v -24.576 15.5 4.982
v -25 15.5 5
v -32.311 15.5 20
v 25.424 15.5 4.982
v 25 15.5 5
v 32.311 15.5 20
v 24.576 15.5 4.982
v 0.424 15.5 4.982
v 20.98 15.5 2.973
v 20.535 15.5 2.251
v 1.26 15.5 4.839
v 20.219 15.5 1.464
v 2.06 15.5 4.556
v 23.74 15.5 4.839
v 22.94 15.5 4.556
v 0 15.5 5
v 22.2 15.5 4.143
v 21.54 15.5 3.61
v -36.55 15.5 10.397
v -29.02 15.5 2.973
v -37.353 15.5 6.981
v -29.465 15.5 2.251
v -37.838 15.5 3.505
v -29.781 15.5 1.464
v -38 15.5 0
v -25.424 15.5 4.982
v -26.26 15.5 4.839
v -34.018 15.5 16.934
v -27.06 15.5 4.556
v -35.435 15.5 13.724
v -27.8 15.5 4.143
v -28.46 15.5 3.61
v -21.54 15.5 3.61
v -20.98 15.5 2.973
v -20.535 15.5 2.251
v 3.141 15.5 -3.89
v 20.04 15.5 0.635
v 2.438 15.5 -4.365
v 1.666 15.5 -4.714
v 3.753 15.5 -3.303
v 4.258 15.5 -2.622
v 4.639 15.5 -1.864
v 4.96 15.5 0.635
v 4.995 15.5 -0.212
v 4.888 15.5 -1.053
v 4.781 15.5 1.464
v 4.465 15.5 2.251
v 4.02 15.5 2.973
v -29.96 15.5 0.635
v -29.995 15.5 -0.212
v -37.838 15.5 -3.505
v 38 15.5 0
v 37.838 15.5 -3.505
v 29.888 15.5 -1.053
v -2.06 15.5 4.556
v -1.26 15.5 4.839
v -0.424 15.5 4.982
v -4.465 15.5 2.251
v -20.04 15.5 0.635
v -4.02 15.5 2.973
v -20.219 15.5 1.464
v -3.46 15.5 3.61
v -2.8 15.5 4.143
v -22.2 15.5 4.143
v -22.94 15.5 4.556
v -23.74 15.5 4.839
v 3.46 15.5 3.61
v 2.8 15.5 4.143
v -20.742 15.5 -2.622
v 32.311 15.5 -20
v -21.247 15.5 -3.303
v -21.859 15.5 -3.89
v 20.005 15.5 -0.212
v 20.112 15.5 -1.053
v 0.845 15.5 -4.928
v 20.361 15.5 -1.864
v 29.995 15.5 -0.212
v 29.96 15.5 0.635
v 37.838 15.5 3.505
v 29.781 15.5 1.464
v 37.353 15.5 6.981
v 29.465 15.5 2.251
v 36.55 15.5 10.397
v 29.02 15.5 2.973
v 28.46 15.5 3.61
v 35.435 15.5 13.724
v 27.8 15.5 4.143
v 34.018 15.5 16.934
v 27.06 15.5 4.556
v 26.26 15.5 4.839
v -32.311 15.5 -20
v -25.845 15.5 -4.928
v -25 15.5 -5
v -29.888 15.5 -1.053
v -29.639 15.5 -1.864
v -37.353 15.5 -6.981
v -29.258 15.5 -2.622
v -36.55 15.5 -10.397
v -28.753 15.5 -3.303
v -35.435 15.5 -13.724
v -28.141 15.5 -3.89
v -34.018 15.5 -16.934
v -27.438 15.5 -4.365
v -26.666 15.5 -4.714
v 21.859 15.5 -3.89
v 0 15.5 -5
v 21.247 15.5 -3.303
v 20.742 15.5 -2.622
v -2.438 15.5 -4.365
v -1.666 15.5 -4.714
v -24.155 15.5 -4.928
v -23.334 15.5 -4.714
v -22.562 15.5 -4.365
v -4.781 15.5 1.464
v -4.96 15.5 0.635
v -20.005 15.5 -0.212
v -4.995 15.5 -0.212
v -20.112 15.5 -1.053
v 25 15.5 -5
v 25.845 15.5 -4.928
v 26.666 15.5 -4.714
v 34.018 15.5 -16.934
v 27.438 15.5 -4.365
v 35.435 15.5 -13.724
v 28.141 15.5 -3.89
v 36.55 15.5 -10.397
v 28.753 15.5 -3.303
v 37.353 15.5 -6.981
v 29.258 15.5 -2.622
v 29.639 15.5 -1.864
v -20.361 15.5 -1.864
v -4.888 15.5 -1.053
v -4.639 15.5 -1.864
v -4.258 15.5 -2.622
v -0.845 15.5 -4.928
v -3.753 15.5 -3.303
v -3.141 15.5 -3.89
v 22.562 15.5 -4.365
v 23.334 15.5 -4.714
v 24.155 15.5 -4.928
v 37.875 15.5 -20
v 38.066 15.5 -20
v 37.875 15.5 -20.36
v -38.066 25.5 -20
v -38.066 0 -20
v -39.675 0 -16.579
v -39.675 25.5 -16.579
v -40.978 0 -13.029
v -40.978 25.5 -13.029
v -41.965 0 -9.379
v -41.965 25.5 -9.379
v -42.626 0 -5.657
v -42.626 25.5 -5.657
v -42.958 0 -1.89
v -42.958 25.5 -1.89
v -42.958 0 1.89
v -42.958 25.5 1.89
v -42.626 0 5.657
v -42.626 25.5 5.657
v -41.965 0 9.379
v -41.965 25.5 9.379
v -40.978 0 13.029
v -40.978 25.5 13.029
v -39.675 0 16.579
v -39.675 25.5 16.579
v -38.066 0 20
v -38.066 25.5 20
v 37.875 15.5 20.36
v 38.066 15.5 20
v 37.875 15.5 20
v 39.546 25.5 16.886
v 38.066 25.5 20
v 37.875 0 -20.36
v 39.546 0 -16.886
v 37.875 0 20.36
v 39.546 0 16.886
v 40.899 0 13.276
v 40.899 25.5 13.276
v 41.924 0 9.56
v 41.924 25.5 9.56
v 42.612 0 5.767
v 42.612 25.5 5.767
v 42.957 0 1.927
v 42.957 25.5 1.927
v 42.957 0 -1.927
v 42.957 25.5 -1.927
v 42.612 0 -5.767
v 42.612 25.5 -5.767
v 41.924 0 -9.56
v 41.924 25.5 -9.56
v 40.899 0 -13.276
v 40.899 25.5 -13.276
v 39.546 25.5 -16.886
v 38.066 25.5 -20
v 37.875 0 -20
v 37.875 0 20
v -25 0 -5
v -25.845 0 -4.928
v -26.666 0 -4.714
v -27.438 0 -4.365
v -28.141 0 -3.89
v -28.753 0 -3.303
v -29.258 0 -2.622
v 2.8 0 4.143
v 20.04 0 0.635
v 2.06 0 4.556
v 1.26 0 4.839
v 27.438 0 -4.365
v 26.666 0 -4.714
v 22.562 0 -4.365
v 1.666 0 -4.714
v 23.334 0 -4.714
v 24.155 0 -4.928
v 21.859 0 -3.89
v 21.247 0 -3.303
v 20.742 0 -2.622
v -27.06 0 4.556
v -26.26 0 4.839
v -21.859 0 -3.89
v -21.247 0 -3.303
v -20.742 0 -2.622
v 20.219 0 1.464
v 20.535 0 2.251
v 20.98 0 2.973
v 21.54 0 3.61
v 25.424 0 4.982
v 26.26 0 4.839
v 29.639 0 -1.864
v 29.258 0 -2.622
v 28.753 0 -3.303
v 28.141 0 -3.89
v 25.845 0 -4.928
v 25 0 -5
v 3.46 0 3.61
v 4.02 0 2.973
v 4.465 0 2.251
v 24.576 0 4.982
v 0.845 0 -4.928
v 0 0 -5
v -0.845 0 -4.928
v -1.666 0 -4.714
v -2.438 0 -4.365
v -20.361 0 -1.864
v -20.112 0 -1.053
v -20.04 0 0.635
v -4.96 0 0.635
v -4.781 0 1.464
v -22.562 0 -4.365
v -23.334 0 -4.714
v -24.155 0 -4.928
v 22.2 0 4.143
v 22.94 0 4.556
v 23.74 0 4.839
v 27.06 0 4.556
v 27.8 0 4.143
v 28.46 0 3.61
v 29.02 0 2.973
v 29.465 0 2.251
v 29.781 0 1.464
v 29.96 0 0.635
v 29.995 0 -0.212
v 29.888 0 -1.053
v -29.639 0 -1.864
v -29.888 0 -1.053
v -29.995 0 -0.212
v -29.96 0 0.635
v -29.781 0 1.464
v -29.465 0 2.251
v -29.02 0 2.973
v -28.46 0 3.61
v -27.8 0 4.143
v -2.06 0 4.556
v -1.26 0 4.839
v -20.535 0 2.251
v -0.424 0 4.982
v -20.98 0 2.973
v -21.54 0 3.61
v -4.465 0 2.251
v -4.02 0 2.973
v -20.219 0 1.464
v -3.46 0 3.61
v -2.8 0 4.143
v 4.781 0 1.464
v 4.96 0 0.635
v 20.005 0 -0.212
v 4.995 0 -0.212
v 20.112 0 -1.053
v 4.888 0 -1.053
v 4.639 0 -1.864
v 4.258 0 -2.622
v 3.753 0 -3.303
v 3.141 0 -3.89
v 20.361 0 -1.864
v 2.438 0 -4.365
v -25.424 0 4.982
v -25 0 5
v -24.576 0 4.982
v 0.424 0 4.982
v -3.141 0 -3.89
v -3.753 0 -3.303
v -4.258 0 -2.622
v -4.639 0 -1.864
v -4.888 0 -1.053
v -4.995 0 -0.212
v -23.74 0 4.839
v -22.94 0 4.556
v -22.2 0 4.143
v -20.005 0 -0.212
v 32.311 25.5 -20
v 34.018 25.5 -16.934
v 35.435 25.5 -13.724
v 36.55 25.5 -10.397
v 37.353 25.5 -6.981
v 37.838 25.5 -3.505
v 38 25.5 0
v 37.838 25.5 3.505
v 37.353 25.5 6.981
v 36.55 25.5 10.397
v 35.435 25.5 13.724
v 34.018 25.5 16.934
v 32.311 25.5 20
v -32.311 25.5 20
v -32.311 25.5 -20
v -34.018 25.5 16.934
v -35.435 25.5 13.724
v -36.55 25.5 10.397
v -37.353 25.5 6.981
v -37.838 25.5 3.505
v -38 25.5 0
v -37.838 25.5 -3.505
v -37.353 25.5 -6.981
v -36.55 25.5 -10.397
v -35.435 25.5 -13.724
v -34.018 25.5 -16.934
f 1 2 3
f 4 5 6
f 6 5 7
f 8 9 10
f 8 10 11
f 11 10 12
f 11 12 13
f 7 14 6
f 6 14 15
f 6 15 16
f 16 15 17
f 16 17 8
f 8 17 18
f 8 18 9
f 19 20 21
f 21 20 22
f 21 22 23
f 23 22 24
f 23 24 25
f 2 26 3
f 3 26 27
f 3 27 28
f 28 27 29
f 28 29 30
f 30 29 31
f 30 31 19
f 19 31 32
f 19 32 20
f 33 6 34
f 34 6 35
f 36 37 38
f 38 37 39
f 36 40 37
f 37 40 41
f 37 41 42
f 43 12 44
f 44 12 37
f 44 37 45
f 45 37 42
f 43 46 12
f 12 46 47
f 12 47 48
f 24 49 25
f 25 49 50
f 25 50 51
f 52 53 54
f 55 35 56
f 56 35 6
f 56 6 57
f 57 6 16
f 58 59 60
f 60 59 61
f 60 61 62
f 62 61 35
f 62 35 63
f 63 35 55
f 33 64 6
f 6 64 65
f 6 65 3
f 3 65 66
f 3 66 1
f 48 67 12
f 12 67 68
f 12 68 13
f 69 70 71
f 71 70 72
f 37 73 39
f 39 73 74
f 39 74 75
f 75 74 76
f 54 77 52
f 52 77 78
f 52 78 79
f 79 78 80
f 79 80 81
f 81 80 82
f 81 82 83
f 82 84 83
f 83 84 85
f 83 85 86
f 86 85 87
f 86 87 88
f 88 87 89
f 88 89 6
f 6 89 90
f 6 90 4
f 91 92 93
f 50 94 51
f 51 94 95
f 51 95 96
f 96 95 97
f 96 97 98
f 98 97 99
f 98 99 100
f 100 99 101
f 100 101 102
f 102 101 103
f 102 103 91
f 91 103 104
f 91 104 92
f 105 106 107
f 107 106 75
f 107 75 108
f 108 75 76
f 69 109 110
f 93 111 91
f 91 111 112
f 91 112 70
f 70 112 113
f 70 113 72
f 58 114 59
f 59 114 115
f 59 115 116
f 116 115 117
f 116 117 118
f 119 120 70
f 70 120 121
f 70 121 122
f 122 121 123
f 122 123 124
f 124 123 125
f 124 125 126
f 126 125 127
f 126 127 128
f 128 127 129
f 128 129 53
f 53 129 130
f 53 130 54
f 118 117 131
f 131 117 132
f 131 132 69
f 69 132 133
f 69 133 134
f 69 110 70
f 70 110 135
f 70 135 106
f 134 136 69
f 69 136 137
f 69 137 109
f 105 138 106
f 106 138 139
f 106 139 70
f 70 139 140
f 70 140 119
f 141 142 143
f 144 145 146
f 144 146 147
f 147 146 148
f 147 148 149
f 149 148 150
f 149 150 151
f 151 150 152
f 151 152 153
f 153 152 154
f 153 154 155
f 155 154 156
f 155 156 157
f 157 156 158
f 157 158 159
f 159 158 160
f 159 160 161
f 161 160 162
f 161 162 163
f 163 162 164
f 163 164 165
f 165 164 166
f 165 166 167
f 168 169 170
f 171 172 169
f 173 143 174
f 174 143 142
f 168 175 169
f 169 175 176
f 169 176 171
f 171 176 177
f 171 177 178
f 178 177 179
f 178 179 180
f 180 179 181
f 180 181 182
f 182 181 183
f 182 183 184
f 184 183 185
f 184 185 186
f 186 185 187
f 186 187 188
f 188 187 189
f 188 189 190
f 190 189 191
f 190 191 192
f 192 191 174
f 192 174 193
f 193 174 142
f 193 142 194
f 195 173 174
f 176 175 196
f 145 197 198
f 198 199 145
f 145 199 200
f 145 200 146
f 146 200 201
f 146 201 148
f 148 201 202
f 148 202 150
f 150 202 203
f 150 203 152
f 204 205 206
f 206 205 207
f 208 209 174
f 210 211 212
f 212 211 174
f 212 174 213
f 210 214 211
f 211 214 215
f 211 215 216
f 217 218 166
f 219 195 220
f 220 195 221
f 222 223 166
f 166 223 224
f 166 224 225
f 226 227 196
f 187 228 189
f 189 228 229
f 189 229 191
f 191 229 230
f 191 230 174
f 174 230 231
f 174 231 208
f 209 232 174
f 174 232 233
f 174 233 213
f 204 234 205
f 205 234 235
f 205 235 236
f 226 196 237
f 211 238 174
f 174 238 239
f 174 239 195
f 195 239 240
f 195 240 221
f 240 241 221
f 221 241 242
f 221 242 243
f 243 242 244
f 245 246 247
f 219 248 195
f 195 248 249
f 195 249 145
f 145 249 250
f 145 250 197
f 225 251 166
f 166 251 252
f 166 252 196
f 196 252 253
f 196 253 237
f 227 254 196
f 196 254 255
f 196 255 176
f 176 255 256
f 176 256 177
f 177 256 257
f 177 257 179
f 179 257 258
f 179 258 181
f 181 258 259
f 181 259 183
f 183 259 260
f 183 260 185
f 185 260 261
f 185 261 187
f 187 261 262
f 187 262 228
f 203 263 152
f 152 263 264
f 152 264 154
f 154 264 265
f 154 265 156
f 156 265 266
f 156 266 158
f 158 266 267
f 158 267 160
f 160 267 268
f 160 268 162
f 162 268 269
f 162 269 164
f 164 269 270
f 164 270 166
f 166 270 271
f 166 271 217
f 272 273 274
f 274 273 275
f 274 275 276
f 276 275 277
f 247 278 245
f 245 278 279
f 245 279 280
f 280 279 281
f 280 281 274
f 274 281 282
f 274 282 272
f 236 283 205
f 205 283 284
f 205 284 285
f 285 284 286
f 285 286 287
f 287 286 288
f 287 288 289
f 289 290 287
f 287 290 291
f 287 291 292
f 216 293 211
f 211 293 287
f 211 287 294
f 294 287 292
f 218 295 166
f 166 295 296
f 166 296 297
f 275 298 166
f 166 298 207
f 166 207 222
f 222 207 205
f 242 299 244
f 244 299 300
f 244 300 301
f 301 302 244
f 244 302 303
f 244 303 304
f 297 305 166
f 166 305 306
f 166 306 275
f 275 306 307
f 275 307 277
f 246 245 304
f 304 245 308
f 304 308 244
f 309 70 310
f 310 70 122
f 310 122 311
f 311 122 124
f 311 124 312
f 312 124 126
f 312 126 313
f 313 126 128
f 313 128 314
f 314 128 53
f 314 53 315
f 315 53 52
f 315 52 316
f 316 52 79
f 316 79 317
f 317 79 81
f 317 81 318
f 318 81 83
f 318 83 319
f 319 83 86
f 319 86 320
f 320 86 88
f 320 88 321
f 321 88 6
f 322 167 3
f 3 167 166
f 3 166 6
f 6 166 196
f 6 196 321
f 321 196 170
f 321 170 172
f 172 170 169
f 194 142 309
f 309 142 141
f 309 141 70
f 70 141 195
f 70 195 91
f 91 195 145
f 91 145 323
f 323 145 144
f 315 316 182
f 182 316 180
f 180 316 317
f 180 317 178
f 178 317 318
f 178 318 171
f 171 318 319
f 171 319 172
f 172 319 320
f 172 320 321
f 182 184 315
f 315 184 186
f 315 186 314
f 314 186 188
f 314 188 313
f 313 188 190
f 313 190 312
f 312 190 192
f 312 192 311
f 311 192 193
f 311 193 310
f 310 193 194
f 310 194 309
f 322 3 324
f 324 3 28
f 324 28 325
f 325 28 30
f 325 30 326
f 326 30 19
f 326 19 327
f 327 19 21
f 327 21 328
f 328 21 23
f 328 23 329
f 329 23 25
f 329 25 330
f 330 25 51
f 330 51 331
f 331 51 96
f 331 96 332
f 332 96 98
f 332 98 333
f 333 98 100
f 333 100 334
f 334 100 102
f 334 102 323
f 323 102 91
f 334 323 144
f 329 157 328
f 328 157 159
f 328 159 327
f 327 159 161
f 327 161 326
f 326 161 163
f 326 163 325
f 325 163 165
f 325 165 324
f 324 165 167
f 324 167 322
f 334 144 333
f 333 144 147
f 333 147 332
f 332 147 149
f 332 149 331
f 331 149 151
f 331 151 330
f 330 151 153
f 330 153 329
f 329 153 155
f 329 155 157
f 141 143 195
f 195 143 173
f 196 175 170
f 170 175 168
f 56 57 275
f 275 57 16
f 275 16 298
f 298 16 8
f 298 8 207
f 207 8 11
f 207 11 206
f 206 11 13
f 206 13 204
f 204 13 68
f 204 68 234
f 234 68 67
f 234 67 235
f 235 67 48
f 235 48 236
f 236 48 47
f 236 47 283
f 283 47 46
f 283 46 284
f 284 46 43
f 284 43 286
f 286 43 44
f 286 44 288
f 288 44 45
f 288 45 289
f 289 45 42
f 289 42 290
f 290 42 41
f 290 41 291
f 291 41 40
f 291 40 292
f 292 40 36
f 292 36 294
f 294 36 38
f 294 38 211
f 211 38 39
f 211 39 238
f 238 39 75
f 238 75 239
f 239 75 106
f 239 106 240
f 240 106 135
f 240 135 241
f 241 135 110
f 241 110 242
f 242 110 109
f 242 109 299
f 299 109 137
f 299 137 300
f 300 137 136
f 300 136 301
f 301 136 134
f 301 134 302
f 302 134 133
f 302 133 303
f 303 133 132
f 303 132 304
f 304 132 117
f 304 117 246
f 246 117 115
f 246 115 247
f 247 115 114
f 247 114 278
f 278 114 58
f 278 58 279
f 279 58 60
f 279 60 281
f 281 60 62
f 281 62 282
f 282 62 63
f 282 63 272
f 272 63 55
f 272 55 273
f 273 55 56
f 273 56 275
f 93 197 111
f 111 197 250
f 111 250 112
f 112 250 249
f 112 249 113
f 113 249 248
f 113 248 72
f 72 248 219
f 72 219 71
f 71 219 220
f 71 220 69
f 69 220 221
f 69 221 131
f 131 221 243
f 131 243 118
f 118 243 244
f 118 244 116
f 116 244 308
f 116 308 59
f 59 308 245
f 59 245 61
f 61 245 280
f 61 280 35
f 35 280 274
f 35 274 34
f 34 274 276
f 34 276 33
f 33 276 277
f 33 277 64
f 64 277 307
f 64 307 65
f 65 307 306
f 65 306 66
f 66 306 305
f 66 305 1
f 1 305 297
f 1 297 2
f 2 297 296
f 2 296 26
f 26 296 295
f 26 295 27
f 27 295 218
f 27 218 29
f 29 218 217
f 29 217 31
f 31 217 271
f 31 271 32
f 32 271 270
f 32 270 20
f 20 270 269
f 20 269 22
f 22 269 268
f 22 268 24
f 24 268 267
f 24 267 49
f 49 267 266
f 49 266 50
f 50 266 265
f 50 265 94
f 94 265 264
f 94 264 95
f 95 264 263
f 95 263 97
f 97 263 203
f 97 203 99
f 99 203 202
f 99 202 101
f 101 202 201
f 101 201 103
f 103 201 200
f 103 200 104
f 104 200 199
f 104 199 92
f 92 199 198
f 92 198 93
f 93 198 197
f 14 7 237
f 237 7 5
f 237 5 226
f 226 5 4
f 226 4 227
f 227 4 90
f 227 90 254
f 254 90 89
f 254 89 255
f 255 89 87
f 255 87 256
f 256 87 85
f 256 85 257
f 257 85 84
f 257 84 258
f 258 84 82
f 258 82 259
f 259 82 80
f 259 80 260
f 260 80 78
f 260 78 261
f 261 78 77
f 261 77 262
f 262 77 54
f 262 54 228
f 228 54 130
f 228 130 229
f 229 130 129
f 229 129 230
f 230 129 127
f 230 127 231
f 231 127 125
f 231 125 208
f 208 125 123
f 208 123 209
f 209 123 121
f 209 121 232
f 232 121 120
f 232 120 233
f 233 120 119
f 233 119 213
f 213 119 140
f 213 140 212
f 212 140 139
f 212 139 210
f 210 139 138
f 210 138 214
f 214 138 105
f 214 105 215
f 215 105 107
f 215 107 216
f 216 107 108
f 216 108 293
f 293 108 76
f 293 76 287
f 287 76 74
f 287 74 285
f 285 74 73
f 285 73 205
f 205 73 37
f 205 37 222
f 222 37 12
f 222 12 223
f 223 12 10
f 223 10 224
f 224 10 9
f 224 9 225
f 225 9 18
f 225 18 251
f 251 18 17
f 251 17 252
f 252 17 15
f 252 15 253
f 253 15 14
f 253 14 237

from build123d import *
from build123d.topology import SkipClean

# Parameters (mm, degrees)
SKETCH3_R           = 43
BOSS_EXTRUDE2_DEPTH = 15.5
BOSS_EXTRUDE5_DEPTH = 10
SKETCH9_W           = 75.940248911
SKETCH9_H           = 24.034829181
CUT_EXTRUDE8_DEPTH  = 20
SKETCH10_R          = 5
CUT_EXTRUDE9_DEPTH  = 20
SKETCH11_R          = 5
CUT_EXTRUDE10_DEPTH = 20


with BuildPart() as part:
    # Sketch3 → Boss-Extrude2 (new body)
    with BuildSketch(Plane(origin=(0, 0, 0), x_dir=(1, 0, 0), z_dir=(0, 1, 0))):
        with Locations(Location((0, 0, 0), (0, 0, 270))):
            Circle(SKETCH3_R)
    extrude(amount=BOSS_EXTRUDE2_DEPTH)

    # Sketch4 → Boss-Extrude5 (add)
    with SkipClean():  # the faces are left unmerged after this step: merging them gives an invalid solid
        with BuildSketch(Plane(origin=(0, 15.5, 0), x_dir=(1, 0, 0), z_dir=(0, 1, 0))):
            with BuildLine():
                Line((-38.065732621, 20), (-32.310988843, 20))
                ThreePointArc((-32.310988843, 20), (-38, 0), (-32.310988843, -20))
                Line((-32.310988843, -20), (-38.065732621, -20))
                ThreePointArc((-38.065732621, -20), (-43, 0), (-38.065732621, 20))
            make_face()
            with BuildLine():
                Line((32.310988843, 20), (38.065732621, 20))
                ThreePointArc((38.065732621, 20), (43, 0), (38.065732621, -20))
                Line((38.065732621, -20), (32.310988843, -20))
                ThreePointArc((32.310988843, -20), (38, 0), (32.310988843, 20))
            make_face()
        extrude(amount=BOSS_EXTRUDE5_DEPTH)

    # Sketch9 → Cut-Extrude8 (cut)
    with BuildSketch(Plane(origin=(0, 15.5, 0), x_dir=(1, 0, 0), z_dir=(0, 1, 0))):
        with Locations((-0.095608165, -32.01741459)):
            Rectangle(SKETCH9_W, SKETCH9_H)
        with Locations((-0.095608165, 32.01741459)):
            Rectangle(SKETCH9_W, SKETCH9_H)
    extrude(amount=-CUT_EXTRUDE8_DEPTH, mode=Mode.SUBTRACT)

    # Sketch10 → Cut-Extrude9 (cut)
    with BuildSketch(Plane.XZ):
        with Locations(Location((0, 0, 0), (0, 0, 270))):
            Circle(SKETCH10_R)
    extrude(amount=-CUT_EXTRUDE9_DEPTH, mode=Mode.SUBTRACT)

    # Sketch11 → Cut-Extrude10 (cut)
    with BuildSketch(Plane.XZ):
        with Locations(Location((25, 0, 0), (0, 0, 270))):
            Circle(SKETCH11_R)
        with Locations(Location((-25, 0, 0), (0, 0, 90))):
            Circle(SKETCH11_R)
    extrude(amount=-CUT_EXTRUDE10_DEPTH, mode=Mode.SUBTRACT)


solid = part.part
